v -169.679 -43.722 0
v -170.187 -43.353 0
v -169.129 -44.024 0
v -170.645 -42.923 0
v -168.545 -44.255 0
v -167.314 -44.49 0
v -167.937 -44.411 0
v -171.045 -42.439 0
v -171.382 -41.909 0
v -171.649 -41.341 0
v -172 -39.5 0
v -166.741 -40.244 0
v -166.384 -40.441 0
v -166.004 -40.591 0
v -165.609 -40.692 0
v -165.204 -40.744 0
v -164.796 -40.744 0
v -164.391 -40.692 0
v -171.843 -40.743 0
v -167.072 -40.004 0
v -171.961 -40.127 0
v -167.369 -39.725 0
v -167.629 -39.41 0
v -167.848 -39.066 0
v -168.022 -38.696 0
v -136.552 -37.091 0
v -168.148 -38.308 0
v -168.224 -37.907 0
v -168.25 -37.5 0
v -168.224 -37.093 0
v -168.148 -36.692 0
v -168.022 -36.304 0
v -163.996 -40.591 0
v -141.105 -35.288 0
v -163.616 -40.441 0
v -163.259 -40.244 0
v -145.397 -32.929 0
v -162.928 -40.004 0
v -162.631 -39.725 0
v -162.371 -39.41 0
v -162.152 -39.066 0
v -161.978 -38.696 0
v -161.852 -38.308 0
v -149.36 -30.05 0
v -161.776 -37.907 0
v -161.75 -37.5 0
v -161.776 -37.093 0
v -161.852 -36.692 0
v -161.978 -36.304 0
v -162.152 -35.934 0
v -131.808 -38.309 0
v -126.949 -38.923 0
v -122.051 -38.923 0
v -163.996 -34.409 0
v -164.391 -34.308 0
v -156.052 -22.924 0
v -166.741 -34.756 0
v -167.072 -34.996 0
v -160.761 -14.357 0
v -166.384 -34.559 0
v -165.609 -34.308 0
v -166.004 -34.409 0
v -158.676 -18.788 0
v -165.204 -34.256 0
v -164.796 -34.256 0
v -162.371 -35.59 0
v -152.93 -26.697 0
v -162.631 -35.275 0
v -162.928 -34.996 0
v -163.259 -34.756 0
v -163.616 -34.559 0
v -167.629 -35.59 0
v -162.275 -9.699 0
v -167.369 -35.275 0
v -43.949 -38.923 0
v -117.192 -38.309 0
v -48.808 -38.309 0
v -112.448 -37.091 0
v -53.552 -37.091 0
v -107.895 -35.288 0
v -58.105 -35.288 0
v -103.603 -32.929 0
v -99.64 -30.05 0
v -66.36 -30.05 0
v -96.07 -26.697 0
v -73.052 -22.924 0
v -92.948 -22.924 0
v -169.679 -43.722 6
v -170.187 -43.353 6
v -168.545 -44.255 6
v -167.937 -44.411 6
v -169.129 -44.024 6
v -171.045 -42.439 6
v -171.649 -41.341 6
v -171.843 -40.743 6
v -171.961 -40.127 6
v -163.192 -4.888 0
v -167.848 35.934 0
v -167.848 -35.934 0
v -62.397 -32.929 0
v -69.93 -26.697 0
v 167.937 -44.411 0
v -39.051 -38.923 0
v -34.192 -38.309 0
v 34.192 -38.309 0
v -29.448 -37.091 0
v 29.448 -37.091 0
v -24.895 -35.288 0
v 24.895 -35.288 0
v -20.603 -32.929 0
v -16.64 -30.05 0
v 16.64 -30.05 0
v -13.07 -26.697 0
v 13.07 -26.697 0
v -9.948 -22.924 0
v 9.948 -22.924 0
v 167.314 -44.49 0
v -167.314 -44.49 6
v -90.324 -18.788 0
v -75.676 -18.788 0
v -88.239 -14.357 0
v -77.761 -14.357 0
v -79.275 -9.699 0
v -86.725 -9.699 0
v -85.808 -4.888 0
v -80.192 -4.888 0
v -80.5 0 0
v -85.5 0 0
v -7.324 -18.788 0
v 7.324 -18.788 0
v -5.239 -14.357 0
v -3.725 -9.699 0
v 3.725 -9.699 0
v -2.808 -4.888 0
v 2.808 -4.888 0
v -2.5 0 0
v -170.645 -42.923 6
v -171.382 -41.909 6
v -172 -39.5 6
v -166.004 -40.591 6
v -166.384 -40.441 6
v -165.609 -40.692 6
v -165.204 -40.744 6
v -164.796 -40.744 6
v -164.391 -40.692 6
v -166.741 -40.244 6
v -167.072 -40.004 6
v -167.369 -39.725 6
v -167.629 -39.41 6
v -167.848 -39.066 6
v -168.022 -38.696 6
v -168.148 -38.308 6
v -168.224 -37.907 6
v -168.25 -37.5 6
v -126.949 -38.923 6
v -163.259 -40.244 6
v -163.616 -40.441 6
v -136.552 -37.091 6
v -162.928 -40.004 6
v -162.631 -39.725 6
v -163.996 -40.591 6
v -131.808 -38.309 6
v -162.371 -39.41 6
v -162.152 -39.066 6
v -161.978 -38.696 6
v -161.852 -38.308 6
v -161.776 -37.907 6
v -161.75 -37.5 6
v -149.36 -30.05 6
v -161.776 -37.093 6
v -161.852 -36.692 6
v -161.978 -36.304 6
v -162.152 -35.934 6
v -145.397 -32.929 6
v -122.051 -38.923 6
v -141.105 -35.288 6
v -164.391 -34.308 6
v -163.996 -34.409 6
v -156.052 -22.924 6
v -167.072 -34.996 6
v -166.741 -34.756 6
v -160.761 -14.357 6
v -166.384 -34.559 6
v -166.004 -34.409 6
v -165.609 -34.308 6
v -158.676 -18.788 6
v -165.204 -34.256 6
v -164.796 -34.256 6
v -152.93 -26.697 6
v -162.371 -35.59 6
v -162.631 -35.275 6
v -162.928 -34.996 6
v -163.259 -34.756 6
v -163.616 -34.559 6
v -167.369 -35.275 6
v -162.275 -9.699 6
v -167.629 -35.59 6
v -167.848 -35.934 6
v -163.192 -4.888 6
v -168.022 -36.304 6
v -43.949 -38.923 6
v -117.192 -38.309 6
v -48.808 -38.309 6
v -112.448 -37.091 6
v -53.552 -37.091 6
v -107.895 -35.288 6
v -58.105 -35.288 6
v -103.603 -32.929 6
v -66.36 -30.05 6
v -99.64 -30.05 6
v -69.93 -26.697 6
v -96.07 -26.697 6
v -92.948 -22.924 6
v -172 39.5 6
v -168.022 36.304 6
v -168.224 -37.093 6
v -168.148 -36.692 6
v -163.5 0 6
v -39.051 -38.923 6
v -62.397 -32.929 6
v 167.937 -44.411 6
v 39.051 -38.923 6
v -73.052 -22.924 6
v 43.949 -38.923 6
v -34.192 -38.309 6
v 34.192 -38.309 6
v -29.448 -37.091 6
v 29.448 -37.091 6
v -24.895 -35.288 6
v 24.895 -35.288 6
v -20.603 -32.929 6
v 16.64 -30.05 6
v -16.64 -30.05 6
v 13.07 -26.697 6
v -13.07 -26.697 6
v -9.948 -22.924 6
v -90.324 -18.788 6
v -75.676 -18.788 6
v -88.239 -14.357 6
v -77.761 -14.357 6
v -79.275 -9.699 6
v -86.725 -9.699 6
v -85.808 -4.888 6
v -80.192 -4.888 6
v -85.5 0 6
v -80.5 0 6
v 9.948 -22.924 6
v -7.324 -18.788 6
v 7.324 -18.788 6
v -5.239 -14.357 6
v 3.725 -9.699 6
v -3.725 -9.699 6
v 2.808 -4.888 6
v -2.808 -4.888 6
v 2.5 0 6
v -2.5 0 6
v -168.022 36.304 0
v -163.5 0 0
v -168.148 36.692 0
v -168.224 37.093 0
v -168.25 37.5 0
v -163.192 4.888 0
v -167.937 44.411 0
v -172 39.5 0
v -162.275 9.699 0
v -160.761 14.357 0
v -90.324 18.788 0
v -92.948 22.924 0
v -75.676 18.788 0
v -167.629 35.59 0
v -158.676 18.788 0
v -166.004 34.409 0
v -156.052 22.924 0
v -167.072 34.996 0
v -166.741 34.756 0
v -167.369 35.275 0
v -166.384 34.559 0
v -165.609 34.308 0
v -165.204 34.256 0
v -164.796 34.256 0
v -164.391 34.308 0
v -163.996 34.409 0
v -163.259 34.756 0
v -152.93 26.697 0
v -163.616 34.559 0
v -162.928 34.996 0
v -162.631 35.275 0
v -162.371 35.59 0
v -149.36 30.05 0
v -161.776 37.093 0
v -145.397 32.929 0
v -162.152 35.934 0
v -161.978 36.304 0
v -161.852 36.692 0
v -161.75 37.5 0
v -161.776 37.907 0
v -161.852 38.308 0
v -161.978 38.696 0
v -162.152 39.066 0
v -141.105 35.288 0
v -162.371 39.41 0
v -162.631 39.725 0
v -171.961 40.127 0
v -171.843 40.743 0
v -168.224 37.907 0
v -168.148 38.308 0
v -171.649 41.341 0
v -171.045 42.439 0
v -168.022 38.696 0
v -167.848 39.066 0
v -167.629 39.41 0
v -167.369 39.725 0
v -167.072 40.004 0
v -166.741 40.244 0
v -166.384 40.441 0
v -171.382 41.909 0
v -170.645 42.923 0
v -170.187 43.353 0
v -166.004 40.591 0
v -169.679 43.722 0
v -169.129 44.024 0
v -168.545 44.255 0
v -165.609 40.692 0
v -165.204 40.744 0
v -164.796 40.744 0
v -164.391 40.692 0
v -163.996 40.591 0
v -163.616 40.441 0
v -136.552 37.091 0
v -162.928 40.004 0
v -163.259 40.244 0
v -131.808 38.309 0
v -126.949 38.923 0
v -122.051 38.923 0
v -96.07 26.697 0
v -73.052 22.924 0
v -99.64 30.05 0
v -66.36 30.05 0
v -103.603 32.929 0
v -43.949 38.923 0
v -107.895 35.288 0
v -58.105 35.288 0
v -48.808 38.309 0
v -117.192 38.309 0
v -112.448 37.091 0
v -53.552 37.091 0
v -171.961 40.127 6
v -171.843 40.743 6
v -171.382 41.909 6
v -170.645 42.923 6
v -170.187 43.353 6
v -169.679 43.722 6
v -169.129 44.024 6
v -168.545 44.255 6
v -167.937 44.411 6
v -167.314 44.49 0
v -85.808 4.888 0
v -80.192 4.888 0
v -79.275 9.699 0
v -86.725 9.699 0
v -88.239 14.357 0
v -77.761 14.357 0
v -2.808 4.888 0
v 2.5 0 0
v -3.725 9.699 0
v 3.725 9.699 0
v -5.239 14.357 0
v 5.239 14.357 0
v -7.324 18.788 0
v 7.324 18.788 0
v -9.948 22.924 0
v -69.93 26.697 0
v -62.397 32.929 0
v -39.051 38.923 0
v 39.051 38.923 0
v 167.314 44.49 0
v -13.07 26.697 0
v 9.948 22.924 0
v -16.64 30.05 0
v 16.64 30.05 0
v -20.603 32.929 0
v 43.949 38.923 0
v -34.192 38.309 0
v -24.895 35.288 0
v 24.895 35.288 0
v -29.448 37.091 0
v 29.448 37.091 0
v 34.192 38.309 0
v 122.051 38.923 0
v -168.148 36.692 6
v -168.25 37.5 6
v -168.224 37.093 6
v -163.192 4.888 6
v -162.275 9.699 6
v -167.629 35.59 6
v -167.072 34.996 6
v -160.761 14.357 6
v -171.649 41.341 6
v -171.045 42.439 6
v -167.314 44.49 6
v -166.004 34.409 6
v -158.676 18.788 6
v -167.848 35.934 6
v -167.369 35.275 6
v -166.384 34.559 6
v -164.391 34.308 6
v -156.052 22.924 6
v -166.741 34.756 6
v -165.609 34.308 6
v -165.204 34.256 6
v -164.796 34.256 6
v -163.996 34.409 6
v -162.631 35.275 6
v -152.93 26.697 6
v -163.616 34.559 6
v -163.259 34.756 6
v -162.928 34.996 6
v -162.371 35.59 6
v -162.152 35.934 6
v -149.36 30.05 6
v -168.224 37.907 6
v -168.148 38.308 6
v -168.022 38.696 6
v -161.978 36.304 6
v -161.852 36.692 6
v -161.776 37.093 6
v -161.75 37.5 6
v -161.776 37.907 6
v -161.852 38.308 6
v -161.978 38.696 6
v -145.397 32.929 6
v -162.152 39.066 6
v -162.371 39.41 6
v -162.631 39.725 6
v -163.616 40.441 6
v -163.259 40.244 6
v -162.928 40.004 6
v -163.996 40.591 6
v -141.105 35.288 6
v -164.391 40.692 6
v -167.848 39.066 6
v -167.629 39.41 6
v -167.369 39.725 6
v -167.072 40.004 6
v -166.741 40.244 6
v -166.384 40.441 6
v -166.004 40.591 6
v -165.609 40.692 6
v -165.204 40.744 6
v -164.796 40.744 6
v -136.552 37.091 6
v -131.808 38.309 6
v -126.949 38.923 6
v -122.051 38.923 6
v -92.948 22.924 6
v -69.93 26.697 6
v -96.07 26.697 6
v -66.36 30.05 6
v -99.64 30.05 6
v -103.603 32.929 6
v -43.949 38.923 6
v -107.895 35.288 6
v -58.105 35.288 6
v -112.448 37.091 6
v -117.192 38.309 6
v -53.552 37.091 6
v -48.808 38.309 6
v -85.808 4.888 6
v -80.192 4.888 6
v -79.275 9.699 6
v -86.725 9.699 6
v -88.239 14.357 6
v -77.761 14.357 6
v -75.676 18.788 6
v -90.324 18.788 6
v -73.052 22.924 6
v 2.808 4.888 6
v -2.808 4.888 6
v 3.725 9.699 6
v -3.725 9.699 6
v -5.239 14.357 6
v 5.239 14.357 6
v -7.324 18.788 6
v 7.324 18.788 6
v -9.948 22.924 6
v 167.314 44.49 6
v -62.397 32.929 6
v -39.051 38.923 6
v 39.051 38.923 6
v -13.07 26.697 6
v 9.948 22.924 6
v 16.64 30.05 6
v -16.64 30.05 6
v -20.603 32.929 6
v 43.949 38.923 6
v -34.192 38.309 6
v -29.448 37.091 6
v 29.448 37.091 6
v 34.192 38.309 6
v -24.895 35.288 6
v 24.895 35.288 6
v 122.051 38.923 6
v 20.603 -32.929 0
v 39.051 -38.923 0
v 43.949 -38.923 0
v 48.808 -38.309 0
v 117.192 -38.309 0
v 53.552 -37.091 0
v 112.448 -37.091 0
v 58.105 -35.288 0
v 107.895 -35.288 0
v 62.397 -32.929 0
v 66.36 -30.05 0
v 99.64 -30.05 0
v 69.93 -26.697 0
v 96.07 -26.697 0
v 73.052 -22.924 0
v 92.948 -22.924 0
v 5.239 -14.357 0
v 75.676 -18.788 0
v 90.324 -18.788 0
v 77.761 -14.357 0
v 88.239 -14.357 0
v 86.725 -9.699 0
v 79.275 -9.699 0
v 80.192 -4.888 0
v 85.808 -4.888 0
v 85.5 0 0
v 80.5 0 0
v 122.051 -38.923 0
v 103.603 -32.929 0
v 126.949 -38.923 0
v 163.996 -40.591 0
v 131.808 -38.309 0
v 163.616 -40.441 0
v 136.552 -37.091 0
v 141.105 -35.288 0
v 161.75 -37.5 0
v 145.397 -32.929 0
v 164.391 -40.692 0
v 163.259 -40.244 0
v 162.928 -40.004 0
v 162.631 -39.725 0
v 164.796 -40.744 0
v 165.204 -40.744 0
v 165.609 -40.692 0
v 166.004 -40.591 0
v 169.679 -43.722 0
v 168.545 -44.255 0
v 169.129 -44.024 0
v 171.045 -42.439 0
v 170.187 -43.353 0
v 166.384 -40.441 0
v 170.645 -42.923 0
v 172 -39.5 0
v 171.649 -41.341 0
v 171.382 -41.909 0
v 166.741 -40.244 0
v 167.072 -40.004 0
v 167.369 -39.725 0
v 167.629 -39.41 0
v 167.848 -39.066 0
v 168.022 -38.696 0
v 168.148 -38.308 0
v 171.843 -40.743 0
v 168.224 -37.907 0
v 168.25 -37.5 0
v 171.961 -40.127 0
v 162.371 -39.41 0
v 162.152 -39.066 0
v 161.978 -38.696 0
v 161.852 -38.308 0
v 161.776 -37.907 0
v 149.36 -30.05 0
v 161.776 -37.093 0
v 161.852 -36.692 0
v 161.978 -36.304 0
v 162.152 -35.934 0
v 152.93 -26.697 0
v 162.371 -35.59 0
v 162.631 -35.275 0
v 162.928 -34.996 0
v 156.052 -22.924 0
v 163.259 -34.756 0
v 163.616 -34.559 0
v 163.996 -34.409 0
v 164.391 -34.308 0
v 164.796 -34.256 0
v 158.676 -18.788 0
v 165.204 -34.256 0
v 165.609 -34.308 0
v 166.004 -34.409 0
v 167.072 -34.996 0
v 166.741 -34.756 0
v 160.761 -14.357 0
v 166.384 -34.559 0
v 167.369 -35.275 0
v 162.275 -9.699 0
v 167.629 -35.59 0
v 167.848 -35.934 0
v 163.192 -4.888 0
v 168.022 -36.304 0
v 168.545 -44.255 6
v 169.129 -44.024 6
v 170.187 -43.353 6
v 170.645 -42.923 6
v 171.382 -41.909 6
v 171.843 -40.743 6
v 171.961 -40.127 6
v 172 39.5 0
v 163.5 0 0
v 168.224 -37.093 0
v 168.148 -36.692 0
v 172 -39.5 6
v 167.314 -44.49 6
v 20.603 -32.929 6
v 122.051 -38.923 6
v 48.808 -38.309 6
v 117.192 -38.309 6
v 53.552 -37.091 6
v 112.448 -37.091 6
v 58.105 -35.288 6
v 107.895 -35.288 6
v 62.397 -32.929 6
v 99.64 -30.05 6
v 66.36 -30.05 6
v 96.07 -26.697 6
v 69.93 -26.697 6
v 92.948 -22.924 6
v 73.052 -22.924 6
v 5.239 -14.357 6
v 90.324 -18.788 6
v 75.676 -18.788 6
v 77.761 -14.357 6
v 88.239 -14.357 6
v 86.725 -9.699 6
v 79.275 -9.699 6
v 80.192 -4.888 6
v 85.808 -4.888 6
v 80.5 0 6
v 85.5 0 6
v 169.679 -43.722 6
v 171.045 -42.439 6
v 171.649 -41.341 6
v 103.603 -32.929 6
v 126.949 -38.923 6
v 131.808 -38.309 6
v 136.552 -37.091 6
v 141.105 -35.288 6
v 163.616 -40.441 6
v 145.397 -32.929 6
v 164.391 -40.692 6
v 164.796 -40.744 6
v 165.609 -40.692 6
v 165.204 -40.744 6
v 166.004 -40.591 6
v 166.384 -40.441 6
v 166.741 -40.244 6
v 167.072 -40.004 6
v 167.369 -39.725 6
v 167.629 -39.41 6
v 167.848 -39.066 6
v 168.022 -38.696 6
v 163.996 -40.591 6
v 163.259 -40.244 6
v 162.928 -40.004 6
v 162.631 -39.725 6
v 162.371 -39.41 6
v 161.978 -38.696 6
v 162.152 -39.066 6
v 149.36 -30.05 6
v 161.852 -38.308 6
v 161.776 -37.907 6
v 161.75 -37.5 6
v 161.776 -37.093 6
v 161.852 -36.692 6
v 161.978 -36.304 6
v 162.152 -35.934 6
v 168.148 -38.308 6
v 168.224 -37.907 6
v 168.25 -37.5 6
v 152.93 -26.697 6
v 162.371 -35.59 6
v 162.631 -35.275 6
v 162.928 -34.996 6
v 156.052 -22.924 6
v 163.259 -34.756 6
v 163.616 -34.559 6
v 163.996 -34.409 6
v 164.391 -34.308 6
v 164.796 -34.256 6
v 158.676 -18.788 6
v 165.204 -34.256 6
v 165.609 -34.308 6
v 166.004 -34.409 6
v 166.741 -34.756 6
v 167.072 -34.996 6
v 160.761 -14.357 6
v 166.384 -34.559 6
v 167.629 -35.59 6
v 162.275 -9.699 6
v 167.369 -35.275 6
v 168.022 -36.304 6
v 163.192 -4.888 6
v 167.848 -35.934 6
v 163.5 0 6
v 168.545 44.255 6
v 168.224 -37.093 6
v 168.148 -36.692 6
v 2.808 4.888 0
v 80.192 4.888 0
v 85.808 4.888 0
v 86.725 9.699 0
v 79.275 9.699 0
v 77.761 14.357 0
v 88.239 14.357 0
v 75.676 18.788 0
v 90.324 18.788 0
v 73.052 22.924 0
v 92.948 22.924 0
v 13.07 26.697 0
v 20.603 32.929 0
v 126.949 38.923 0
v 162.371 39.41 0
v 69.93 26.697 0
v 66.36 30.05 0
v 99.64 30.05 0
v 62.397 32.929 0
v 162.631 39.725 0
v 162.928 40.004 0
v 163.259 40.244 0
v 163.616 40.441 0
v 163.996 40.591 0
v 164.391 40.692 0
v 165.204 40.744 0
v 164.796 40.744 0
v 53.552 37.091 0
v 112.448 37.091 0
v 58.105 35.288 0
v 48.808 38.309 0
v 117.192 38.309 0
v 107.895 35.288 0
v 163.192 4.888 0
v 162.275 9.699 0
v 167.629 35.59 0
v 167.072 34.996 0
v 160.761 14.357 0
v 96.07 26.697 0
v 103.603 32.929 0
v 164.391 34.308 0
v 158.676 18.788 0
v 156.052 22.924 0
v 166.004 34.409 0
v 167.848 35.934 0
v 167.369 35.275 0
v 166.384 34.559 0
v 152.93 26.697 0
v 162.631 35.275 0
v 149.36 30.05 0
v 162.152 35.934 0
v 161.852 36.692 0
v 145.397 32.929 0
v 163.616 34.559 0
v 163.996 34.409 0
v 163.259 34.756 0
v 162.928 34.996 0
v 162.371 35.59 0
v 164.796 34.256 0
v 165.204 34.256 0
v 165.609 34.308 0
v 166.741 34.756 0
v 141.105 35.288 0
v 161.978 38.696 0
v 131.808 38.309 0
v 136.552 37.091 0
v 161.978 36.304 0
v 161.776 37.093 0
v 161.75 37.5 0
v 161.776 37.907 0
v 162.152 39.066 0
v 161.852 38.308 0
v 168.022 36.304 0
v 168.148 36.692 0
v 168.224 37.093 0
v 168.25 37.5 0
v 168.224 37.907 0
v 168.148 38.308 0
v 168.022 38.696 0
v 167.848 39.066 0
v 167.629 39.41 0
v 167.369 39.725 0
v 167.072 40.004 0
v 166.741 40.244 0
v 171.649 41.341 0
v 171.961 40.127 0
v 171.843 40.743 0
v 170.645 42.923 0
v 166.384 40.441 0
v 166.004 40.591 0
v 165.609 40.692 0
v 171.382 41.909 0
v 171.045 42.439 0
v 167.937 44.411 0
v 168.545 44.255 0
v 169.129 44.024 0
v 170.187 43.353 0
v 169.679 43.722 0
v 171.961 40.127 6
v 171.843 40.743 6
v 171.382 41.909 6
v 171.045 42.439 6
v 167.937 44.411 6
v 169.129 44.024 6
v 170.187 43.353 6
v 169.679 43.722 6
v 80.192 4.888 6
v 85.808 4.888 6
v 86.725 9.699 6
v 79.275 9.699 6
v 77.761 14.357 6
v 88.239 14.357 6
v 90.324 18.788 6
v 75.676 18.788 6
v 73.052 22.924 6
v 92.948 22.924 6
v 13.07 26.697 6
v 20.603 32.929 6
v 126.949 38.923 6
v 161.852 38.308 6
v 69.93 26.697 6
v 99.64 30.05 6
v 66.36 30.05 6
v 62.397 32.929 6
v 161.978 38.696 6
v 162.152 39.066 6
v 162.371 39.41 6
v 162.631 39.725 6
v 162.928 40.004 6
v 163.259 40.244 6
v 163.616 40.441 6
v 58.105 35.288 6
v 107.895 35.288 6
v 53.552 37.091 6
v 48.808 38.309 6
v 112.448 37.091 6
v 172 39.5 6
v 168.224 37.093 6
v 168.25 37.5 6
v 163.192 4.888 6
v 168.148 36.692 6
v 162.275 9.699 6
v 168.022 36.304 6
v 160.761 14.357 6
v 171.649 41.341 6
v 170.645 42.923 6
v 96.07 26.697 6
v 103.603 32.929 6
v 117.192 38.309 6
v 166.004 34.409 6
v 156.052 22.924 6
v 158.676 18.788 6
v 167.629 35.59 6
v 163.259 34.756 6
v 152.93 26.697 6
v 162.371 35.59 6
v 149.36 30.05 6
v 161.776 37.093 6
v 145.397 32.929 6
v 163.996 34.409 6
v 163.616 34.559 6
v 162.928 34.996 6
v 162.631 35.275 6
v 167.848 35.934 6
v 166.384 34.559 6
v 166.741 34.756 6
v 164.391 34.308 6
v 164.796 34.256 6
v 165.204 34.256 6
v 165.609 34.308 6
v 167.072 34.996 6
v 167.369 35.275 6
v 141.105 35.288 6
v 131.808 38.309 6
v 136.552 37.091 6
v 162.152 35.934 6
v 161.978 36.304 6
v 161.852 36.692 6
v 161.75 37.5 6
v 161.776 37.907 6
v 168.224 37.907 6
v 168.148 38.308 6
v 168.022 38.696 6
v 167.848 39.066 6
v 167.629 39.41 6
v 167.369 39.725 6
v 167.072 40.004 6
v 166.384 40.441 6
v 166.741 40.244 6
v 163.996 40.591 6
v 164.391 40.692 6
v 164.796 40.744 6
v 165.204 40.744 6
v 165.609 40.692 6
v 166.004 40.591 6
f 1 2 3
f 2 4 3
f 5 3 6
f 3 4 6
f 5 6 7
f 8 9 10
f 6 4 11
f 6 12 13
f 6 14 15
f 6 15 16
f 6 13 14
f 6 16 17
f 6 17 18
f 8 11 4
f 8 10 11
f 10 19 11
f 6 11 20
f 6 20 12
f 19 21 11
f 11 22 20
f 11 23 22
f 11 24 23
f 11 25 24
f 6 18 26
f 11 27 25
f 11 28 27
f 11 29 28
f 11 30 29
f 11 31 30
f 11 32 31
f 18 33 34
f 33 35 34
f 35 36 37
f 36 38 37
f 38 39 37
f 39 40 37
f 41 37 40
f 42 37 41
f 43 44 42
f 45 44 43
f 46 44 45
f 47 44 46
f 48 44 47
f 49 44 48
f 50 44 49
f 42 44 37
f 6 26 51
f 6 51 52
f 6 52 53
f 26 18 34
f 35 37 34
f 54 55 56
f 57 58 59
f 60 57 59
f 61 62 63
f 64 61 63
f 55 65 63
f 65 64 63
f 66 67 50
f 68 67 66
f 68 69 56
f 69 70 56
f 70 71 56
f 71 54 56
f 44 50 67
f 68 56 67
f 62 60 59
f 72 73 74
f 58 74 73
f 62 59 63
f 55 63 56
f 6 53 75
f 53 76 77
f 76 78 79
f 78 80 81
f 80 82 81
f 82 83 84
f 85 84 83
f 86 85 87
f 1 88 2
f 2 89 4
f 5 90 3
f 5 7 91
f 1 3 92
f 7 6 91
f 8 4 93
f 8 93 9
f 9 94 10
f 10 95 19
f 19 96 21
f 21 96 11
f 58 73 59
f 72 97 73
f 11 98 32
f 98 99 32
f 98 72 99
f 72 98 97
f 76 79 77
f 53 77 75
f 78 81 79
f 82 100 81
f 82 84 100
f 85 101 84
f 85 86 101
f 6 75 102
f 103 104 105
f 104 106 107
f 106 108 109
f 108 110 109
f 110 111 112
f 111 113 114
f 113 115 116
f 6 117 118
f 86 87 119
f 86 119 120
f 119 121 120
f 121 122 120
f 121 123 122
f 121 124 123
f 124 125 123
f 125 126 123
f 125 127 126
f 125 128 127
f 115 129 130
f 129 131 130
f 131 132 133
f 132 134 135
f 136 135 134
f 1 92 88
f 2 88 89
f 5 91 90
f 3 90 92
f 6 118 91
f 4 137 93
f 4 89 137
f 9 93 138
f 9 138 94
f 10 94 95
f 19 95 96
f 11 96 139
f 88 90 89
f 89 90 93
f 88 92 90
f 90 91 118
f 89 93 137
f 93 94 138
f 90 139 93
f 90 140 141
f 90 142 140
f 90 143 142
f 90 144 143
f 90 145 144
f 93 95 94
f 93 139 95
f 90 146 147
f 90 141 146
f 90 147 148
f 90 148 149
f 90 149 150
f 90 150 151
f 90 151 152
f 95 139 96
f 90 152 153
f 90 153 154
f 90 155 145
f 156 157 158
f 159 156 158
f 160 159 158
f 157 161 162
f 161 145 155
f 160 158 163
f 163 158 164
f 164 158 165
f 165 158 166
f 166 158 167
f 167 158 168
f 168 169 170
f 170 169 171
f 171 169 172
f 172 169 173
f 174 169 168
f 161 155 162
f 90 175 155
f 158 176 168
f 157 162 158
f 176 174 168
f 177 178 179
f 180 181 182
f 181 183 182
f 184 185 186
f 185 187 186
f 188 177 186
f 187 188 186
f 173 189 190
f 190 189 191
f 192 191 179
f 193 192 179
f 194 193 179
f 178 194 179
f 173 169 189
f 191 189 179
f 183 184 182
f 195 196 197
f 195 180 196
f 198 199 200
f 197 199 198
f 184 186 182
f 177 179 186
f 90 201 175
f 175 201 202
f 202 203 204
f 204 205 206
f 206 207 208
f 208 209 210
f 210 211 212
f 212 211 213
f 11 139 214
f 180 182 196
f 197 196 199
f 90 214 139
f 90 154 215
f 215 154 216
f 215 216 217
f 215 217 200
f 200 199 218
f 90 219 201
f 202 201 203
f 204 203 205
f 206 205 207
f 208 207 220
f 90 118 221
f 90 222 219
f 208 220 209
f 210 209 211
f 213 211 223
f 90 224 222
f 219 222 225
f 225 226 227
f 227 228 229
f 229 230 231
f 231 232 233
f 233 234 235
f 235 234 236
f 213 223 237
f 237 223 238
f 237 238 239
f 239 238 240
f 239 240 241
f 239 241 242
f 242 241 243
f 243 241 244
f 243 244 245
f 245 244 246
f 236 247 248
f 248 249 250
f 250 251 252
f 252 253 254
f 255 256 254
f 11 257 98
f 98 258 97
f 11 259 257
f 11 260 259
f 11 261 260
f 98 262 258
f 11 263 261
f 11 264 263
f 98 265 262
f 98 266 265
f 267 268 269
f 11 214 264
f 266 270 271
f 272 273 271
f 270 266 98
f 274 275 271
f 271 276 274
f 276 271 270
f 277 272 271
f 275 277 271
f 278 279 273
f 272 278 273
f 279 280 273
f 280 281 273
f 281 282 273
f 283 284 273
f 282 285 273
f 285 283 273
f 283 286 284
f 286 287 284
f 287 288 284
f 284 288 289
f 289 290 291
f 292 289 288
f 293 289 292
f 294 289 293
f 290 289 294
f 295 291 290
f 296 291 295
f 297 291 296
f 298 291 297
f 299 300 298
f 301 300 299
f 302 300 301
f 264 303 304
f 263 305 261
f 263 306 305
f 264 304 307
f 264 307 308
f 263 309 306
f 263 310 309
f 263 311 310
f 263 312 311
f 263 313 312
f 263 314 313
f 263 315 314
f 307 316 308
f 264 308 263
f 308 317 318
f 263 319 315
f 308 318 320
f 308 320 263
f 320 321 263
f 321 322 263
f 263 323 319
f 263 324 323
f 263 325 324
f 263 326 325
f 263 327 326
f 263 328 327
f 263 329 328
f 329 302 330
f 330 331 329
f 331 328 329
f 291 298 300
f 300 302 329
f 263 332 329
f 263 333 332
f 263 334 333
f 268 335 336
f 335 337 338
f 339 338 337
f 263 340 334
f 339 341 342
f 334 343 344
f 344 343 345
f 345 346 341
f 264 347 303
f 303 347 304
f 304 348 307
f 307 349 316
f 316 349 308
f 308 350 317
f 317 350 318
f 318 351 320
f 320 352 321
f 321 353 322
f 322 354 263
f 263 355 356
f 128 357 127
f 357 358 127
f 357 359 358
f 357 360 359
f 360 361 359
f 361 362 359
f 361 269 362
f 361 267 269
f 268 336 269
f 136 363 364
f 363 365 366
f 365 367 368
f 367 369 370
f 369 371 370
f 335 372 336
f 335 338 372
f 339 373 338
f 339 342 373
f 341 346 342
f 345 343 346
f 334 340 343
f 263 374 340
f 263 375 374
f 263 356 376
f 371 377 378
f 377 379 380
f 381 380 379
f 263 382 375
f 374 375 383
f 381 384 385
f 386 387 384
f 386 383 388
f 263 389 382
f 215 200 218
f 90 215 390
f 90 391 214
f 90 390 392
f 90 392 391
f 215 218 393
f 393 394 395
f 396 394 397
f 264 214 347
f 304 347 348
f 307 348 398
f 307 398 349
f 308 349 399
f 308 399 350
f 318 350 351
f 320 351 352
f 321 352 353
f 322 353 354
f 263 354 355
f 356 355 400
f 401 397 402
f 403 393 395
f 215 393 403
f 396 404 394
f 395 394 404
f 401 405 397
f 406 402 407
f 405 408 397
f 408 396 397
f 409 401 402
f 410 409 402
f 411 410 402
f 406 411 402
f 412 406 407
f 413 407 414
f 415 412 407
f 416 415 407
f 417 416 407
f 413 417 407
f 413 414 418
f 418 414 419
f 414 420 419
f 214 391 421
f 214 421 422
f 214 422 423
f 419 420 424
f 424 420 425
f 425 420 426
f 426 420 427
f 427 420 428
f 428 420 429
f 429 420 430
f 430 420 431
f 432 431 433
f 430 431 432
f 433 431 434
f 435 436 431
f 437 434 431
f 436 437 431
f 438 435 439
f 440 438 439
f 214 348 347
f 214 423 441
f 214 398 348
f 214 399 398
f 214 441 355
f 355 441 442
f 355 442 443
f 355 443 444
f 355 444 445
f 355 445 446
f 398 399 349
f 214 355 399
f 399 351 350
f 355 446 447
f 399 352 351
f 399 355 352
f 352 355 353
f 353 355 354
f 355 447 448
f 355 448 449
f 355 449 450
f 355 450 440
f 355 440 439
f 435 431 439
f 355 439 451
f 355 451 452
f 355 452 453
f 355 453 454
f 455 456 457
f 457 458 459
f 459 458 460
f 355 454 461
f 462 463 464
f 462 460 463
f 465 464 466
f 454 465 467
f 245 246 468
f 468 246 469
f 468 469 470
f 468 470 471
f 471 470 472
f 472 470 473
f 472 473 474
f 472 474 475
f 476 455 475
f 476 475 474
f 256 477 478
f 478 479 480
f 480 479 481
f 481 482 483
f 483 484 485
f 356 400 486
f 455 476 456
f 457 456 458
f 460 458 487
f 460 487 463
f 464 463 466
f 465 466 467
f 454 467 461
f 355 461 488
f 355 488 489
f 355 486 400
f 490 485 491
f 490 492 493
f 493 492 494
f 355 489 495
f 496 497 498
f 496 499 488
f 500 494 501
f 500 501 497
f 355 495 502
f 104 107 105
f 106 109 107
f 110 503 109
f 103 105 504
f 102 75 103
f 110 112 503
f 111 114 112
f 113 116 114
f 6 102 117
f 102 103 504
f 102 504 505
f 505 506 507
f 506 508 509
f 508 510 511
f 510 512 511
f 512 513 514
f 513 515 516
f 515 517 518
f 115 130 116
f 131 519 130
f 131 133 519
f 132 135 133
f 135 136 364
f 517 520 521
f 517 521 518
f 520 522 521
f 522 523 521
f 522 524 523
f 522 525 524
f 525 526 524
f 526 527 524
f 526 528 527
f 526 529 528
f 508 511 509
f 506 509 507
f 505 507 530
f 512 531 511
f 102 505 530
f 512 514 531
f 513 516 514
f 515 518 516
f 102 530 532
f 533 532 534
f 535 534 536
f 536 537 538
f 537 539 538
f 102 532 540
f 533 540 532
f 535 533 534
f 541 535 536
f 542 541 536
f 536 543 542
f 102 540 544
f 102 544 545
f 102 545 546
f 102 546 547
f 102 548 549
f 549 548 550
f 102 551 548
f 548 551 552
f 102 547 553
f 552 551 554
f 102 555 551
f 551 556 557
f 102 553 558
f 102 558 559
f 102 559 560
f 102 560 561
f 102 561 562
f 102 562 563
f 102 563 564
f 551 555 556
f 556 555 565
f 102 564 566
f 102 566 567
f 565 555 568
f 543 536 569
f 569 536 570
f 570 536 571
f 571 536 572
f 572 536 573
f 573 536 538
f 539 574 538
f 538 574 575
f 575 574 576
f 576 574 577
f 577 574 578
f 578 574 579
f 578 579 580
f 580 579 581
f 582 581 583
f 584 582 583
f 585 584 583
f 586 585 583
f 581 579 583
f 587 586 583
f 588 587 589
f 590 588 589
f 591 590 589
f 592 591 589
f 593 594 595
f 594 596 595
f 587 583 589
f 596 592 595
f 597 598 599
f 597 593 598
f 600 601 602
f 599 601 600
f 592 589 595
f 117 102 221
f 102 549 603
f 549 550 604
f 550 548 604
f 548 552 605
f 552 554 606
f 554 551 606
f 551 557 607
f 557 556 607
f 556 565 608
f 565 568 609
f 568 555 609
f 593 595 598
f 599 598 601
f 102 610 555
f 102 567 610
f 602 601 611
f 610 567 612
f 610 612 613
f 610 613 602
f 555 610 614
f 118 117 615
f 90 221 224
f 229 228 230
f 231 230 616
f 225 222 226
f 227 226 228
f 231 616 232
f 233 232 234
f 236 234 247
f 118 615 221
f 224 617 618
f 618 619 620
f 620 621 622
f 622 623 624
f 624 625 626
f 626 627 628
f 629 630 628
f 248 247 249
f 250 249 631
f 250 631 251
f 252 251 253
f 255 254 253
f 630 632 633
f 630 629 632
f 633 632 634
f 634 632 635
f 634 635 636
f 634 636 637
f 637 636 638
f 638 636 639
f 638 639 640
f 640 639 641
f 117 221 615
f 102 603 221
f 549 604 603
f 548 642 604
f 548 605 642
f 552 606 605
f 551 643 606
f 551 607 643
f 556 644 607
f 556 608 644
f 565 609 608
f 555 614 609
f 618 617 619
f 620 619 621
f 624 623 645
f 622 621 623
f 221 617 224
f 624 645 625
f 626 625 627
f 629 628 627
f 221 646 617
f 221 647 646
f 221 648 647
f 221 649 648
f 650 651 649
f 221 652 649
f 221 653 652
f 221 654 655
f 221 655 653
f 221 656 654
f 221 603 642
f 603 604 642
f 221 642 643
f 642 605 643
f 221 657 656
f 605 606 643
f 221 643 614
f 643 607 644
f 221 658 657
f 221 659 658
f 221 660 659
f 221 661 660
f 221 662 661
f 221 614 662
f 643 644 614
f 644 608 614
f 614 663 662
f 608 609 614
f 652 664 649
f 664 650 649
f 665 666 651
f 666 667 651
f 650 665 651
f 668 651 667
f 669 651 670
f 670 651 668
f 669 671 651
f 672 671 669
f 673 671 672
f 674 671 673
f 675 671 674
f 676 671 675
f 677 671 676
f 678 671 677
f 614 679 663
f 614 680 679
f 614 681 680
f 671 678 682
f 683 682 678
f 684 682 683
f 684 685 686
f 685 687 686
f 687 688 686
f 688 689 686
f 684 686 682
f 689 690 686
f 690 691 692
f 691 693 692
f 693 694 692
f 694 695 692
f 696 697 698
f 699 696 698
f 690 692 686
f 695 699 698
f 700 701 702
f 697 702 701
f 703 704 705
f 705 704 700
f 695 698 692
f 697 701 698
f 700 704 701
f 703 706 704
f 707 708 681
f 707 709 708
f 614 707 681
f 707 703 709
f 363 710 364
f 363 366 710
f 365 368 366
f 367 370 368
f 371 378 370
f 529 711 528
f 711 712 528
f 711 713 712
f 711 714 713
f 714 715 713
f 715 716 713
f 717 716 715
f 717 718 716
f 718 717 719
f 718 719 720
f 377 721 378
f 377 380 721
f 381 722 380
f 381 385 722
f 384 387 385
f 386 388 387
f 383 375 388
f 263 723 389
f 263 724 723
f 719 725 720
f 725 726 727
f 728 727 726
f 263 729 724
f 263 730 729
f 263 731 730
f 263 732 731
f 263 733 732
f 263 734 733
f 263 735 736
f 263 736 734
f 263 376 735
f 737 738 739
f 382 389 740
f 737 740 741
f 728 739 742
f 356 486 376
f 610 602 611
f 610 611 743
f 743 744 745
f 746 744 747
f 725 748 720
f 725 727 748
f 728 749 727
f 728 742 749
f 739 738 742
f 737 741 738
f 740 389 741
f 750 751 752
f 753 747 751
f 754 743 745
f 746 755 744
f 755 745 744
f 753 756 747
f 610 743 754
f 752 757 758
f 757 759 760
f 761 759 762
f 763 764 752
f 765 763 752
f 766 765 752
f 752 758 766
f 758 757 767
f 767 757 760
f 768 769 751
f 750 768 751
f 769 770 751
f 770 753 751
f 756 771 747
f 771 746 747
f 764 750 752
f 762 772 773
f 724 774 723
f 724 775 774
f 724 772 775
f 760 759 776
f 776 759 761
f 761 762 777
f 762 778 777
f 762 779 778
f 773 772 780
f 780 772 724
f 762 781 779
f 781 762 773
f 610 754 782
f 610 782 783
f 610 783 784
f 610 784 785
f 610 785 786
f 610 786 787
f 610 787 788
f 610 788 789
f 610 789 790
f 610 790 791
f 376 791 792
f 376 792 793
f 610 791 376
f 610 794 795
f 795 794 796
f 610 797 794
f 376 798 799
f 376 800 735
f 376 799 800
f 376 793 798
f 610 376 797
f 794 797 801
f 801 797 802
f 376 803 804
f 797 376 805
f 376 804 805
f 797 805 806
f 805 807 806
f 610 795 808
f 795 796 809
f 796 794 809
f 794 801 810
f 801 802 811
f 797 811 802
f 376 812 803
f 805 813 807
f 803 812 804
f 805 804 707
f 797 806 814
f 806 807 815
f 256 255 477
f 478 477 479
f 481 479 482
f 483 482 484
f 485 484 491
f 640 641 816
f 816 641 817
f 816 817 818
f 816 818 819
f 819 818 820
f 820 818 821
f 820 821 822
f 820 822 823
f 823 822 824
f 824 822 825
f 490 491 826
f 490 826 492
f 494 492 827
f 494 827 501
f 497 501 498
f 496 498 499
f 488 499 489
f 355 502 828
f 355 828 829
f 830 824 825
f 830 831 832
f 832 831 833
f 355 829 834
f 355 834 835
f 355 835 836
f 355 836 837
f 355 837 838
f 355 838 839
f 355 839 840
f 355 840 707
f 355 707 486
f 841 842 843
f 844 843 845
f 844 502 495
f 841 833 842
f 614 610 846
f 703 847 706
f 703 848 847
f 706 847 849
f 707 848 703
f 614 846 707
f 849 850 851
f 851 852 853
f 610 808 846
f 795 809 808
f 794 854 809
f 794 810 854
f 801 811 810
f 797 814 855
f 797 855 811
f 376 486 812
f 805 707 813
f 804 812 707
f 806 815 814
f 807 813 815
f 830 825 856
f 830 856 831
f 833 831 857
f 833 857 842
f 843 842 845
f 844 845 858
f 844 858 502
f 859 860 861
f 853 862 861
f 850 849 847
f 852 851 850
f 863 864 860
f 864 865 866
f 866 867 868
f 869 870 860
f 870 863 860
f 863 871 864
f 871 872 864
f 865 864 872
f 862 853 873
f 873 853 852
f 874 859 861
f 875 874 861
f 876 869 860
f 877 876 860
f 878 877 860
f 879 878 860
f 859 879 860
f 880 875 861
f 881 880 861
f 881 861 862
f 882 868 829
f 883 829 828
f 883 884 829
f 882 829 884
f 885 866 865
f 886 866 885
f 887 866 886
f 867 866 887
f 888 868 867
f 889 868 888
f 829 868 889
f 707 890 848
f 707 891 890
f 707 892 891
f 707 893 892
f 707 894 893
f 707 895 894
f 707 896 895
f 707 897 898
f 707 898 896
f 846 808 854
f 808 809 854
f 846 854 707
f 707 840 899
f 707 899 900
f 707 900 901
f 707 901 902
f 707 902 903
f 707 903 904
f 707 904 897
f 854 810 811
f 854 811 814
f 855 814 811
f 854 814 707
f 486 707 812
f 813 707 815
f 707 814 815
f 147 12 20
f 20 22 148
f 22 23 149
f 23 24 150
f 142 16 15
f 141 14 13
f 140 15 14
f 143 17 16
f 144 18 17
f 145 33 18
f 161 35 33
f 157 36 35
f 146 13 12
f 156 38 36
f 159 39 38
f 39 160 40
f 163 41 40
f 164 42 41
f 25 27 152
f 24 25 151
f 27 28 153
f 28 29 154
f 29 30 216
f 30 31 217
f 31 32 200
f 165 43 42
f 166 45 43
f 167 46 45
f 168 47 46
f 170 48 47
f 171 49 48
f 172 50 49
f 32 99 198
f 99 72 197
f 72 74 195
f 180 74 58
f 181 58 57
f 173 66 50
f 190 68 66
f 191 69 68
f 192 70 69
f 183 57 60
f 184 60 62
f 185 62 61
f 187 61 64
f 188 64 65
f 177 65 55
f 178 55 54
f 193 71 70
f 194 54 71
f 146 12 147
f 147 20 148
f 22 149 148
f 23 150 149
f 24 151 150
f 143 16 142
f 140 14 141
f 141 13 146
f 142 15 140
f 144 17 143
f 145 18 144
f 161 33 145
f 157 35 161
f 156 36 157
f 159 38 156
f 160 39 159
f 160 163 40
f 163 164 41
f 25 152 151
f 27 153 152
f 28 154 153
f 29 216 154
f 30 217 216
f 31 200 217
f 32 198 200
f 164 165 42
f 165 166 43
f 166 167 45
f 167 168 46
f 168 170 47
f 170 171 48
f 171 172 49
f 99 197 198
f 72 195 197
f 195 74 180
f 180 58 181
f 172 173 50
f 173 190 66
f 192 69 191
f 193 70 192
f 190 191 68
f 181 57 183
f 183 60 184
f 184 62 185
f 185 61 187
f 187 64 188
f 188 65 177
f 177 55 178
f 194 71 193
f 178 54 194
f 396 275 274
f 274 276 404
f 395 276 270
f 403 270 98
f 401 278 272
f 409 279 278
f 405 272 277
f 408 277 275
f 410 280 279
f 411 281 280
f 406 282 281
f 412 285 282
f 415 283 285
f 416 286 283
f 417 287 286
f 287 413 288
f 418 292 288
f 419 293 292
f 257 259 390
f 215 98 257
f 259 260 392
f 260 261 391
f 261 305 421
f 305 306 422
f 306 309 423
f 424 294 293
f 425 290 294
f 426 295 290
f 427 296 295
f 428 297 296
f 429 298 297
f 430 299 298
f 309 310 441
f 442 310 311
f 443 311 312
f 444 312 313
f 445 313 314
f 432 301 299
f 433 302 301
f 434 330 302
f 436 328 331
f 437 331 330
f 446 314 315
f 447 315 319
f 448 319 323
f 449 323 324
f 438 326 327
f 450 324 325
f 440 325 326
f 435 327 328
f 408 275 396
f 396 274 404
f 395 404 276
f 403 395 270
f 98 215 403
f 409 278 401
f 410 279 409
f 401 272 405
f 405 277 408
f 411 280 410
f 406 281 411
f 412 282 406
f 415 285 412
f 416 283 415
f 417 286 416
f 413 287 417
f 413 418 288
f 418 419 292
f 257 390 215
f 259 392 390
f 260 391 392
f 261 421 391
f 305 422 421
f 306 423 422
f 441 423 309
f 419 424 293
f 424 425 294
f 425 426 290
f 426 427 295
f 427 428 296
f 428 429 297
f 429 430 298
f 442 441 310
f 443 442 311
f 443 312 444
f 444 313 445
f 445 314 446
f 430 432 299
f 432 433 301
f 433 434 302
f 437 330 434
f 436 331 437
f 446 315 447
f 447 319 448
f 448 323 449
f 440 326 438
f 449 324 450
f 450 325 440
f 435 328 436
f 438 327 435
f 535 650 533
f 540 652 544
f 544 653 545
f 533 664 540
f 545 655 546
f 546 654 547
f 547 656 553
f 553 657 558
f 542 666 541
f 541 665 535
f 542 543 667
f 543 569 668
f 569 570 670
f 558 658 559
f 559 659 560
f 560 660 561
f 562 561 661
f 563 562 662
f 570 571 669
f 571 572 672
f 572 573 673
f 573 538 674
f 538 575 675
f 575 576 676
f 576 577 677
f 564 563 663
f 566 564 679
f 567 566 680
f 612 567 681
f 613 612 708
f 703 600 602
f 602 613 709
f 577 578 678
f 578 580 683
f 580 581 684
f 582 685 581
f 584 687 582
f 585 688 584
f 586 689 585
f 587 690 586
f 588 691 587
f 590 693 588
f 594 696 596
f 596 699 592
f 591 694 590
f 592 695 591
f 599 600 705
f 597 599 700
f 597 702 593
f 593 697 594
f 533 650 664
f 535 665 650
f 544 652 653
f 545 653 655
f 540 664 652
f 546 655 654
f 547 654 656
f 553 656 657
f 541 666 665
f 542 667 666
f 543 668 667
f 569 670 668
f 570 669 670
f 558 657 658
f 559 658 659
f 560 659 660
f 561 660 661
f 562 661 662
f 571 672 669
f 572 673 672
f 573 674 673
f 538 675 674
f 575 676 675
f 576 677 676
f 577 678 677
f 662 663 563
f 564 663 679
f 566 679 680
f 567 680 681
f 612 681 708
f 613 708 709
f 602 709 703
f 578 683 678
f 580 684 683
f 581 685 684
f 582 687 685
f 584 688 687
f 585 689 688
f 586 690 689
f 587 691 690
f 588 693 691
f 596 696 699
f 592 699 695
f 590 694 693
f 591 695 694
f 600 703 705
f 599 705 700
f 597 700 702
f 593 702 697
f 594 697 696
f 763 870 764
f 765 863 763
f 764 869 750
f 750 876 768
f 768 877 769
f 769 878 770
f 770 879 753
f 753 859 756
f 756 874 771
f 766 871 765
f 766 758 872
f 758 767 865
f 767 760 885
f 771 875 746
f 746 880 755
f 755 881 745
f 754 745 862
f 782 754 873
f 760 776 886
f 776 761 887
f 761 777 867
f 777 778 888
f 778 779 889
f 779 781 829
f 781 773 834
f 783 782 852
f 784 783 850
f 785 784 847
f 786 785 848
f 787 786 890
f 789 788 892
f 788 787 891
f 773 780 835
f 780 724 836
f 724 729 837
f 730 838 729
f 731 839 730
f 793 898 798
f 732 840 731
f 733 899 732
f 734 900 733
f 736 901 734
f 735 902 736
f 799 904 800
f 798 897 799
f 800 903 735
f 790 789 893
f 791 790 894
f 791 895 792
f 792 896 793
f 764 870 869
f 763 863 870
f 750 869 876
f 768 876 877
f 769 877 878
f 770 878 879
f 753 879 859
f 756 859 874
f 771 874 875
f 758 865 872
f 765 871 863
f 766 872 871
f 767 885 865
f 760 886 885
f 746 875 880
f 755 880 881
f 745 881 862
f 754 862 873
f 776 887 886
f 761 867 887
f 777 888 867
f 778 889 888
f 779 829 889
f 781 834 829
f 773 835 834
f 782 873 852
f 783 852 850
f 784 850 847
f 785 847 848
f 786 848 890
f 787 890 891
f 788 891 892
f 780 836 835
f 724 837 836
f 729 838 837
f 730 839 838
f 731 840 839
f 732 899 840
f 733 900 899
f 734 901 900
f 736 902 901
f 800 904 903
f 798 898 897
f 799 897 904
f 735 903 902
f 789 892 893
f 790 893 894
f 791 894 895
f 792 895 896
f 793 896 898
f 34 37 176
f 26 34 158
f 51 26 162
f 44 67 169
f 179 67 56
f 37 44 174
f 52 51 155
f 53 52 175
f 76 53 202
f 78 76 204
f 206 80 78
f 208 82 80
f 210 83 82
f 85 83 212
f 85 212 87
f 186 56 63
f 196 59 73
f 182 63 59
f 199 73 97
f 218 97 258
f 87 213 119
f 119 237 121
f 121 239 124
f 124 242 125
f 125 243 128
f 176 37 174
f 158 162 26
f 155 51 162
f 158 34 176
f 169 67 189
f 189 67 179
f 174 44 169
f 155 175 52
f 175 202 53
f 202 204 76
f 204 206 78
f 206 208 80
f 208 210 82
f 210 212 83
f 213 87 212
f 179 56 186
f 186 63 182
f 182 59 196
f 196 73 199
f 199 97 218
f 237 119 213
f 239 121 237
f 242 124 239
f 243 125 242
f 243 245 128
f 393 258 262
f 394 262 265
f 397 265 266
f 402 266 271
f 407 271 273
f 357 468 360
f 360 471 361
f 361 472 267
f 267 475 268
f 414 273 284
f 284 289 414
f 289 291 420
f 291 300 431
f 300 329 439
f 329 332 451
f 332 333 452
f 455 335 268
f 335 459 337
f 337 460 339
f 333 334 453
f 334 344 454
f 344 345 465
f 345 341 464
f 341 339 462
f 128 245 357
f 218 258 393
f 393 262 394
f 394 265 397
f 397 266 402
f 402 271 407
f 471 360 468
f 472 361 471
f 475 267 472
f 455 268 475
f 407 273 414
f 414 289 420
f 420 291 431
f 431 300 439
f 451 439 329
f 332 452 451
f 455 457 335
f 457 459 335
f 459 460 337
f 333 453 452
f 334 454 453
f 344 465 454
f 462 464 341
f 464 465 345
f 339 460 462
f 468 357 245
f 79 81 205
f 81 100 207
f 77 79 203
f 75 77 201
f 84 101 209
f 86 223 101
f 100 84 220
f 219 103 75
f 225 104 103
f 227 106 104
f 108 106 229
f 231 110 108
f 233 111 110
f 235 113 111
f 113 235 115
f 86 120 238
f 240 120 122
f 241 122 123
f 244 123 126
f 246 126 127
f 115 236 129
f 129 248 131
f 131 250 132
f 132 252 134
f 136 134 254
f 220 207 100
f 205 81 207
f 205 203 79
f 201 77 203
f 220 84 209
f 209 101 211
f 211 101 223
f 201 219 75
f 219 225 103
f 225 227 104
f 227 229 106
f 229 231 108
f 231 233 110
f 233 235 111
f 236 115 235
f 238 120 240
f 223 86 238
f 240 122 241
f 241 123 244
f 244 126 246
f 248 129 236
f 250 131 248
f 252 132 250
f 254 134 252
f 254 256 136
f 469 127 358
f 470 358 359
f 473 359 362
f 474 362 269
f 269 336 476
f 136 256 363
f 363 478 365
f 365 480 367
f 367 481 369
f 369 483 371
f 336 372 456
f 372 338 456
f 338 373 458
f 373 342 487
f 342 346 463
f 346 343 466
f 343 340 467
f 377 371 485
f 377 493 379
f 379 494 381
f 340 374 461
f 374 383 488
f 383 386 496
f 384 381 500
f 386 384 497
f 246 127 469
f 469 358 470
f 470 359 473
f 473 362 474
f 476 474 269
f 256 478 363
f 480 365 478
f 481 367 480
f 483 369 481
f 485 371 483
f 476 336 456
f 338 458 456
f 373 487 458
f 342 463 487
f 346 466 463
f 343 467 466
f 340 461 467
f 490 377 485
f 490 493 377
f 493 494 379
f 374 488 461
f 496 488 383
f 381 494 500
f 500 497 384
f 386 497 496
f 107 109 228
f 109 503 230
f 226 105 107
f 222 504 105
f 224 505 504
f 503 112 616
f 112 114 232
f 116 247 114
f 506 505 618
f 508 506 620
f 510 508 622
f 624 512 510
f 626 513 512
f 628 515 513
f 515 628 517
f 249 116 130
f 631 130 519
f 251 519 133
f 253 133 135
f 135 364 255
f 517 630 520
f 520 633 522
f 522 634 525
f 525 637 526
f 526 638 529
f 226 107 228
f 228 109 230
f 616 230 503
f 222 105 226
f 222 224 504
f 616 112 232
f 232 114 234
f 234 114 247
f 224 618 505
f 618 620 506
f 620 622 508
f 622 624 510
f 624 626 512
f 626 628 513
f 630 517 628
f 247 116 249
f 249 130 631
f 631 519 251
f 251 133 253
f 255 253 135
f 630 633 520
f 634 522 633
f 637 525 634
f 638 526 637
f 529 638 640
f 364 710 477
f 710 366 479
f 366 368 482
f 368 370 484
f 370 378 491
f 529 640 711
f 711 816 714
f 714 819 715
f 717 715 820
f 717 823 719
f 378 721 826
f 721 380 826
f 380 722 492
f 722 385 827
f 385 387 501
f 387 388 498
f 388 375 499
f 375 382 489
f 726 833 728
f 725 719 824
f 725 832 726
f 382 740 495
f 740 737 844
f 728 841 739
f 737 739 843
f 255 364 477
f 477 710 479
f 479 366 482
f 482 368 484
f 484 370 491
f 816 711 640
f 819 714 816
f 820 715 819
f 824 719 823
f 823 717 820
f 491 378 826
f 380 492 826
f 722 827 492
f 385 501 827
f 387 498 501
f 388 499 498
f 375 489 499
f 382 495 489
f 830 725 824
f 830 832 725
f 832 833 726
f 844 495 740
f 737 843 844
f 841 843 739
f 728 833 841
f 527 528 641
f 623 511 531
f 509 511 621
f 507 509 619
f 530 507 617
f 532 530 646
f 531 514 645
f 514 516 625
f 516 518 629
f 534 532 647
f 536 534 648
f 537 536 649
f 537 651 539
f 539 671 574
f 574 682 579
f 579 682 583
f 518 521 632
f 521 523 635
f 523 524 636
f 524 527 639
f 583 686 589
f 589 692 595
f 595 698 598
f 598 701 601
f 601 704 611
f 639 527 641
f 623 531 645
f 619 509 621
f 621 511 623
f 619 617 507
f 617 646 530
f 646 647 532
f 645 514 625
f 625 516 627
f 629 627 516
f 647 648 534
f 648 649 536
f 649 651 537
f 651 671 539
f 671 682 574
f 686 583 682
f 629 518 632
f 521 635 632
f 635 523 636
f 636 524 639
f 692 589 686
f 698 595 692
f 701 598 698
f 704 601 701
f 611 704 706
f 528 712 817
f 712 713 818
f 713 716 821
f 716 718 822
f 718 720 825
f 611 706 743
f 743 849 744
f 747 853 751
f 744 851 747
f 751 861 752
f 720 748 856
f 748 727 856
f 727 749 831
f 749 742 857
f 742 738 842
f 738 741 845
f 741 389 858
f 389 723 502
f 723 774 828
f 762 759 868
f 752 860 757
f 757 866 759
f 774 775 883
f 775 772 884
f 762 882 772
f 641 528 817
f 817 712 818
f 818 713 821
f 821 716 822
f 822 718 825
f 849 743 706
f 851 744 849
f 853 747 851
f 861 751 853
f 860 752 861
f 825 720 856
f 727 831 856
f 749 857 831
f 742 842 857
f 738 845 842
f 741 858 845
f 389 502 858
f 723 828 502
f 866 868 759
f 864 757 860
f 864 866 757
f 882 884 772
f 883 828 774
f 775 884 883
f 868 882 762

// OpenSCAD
$fn = 50;

difference() {
	union() {
		hull() {
			translate(v = [-167.0, 39.5, 0]) {
				cylinder(h = 6, r = 5);
			}
			translate(v = [167.0, 39.5, 0]) {
				cylinder(h = 6, r = 5);
			}
			translate(v = [-167.0, -39.5, 0]) {
				cylinder(h = 6, r = 5);
			}
			translate(v = [167.0, -39.5, 0]) {
				cylinder(h = 6, r = 5);
			}
		}
	}
	union() {
		translate(v = [-165.0, -37.5, -100.0]) {
			cylinder(h = 200, r = 3.25);
		}
		translate(v = [-165.0, 37.5, -100.0]) {
			cylinder(h = 200, r = 3.25);
		}
		translate(v = [165.0, -37.5, -100.0]) {
			cylinder(h = 200, r = 3.25);
		}
		translate(v = [165.0, 37.5, -100.0]) {
			cylinder(h = 200, r = 3.25);
		}
		translate(v = [-165.0, -37.5, -100.0]) {
			cylinder(h = 200, r = 1.8);
		}
		translate(v = [-165.0, 37.5, -100.0]) {
			cylinder(h = 200, r = 1.8);
		}
		translate(v = [165.0, -37.5, -100.0]) {
			cylinder(h = 200, r = 1.8);
		}
		translate(v = [165.0, 37.5, -100.0]) {
			cylinder(h = 200, r = 1.8);
		}
		translate(v = [-124.5, 0, 0.0]) {
			cylinder(h = 6, r = 39.0);
		}
		translate(v = [-41.5, 0, 0.0]) {
			cylinder(h = 6, r = 39.0);
		}
		translate(v = [41.5, 0, 0.0]) {
			cylinder(h = 6, r = 39.0);
		}
		translate(v = [124.5, 0, 0.0]) {
			cylinder(h = 6, r = 39.0);
		}
	}
}
